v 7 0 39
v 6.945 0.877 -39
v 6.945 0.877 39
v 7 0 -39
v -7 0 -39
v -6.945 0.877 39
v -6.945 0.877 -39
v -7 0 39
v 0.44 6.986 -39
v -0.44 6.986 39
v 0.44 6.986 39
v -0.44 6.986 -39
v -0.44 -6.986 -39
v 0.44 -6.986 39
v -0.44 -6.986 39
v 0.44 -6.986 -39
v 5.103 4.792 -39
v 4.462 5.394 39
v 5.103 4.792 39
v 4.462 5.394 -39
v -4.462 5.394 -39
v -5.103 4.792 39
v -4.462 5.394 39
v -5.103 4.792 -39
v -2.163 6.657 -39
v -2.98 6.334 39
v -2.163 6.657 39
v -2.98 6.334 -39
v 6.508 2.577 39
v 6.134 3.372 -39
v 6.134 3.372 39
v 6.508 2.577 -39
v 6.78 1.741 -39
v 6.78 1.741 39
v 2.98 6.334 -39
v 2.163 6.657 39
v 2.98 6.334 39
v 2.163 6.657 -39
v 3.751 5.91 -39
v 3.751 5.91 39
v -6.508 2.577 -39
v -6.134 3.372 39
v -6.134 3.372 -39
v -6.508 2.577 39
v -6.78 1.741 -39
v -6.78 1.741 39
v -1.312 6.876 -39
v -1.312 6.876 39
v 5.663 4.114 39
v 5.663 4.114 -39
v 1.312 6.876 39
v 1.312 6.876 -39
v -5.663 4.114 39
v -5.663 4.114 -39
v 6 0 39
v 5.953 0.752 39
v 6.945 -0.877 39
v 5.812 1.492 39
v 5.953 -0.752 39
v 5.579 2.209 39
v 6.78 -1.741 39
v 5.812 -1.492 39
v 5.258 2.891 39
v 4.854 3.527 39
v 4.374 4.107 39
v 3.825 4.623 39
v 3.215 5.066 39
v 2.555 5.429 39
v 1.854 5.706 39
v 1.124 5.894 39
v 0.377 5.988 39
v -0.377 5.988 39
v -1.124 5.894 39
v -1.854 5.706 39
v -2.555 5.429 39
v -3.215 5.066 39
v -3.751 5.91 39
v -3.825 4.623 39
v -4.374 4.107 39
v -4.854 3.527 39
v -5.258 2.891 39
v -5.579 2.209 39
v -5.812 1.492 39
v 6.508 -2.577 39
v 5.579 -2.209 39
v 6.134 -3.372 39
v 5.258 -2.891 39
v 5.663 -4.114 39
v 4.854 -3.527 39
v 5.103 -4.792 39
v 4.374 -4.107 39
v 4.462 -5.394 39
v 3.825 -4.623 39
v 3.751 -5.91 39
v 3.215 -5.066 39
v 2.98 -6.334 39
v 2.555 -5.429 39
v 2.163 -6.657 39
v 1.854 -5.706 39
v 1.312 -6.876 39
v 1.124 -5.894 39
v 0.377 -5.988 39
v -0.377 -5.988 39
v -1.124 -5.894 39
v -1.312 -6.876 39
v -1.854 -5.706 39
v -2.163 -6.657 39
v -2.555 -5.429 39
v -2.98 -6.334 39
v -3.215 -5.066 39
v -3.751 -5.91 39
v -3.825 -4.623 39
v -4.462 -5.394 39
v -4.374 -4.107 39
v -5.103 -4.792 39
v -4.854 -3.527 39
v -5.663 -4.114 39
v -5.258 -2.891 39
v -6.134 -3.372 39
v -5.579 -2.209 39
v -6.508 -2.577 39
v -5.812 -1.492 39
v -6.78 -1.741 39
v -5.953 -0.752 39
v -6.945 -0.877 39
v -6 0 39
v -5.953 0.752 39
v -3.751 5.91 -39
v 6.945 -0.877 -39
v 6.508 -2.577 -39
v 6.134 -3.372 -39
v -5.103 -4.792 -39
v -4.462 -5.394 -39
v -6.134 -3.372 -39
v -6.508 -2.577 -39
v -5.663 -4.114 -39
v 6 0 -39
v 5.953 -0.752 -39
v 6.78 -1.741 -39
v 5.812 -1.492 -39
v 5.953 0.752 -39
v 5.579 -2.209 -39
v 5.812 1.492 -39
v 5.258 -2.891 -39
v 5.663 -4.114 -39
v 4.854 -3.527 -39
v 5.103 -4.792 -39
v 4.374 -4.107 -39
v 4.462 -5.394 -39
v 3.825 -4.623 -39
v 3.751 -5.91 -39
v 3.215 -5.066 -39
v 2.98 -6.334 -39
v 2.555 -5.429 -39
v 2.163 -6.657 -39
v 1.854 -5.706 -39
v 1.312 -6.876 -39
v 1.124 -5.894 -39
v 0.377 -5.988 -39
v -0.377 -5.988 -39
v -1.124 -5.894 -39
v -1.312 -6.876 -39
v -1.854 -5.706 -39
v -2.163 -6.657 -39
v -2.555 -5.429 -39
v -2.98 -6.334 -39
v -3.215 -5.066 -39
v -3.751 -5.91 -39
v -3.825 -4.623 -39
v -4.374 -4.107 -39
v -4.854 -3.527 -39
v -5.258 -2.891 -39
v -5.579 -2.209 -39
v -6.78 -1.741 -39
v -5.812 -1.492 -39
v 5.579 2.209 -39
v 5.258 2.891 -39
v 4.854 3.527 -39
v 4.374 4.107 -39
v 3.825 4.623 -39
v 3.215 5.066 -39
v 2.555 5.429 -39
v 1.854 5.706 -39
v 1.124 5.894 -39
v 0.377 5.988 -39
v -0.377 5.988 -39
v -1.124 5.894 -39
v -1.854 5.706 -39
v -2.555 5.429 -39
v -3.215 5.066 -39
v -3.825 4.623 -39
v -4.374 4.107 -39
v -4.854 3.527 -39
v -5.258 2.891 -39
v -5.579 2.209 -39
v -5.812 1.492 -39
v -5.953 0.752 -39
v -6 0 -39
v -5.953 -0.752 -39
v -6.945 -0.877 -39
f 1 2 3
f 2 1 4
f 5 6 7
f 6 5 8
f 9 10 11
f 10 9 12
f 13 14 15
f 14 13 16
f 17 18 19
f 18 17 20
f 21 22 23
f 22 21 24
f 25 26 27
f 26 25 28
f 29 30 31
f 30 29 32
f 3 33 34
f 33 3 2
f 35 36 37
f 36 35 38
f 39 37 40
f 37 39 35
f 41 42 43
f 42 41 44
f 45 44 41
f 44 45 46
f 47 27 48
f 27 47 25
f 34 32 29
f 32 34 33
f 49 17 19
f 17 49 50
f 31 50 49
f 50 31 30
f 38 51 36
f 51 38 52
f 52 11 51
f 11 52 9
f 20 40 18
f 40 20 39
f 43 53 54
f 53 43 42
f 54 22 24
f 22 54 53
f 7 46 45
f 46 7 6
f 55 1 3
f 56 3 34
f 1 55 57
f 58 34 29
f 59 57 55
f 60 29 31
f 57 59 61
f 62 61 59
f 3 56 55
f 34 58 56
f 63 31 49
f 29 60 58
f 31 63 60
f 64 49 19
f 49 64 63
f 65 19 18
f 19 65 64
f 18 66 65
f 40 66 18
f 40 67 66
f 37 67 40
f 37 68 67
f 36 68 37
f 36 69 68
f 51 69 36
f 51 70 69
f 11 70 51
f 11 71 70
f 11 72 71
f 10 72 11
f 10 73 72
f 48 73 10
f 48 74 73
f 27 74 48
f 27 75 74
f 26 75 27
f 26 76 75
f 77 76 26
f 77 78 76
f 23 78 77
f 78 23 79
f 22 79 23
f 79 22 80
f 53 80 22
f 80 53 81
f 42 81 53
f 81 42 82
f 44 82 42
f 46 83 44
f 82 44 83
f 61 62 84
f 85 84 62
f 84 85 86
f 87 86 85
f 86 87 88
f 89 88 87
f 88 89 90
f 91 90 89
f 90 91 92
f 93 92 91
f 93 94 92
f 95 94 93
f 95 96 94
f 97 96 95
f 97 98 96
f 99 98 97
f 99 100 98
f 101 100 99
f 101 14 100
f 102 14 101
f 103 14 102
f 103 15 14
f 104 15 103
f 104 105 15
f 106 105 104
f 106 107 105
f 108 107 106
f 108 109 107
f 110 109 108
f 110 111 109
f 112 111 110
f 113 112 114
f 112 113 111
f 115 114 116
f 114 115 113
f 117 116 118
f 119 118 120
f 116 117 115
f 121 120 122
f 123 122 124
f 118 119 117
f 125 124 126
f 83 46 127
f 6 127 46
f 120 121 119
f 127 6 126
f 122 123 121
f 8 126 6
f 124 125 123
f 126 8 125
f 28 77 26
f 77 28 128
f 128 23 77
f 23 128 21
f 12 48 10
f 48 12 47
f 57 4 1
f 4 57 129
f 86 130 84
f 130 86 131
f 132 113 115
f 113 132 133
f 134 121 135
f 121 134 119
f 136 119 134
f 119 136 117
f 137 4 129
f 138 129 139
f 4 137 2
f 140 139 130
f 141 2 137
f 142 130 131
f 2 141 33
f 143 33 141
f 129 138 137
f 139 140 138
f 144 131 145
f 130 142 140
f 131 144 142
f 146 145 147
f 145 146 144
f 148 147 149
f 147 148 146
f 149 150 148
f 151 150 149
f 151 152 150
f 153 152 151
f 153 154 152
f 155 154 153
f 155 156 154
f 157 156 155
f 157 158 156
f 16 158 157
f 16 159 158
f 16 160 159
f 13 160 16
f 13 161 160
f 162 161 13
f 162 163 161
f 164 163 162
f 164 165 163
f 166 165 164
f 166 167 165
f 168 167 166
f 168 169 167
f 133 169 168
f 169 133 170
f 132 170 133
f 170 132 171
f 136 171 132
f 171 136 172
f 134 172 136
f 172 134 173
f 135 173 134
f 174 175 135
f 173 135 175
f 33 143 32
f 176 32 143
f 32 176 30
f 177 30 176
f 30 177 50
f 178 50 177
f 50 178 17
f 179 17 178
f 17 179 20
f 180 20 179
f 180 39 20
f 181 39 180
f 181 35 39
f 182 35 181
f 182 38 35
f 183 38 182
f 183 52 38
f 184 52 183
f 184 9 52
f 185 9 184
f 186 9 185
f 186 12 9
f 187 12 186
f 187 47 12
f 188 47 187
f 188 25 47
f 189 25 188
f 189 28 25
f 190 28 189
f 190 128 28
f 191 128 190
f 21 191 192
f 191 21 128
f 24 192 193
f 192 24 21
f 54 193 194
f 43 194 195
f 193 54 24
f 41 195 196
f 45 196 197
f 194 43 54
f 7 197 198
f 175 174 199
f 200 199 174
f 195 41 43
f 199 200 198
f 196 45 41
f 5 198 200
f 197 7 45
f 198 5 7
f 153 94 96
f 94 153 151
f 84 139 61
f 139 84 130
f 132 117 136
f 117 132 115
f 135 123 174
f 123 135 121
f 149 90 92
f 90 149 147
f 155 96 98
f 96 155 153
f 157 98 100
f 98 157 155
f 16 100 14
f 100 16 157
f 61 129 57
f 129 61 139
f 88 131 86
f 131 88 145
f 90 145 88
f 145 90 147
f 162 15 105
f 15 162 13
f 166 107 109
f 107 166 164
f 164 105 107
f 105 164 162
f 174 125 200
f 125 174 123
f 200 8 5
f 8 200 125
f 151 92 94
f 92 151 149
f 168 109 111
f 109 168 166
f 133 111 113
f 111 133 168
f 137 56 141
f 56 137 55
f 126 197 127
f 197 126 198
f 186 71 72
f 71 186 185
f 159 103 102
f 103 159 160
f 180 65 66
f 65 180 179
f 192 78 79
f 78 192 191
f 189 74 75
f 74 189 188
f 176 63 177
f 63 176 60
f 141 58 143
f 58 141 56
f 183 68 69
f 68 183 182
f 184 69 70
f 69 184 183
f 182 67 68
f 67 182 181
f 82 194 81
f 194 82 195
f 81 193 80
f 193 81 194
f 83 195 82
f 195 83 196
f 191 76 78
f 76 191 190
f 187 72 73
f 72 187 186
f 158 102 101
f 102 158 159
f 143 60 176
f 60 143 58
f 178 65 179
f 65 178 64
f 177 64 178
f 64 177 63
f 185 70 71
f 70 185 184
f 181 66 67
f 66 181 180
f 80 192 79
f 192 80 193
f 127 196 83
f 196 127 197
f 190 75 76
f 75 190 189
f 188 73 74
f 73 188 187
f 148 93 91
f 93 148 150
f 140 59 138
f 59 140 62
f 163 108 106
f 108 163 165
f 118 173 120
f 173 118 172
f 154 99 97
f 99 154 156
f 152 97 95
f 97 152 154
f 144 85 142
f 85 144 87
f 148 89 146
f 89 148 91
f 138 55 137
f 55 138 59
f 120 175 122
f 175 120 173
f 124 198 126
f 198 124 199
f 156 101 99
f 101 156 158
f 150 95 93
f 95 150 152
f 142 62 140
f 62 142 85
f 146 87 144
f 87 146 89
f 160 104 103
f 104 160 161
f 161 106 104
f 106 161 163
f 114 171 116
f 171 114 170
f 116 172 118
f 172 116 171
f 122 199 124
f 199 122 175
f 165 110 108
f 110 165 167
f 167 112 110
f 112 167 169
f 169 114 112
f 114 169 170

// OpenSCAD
$fn = 50;


difference() {
	union() {
		translate(v = [0, 0, -39.0000000000]) {
			cylinder(h = 78, r = 7.0000000000);
		}
	}
	union() {
		translate(v = [0, 0, -100.0000000000]) {
			cylinder(h = 200, r = 6);
		}
	}
}
